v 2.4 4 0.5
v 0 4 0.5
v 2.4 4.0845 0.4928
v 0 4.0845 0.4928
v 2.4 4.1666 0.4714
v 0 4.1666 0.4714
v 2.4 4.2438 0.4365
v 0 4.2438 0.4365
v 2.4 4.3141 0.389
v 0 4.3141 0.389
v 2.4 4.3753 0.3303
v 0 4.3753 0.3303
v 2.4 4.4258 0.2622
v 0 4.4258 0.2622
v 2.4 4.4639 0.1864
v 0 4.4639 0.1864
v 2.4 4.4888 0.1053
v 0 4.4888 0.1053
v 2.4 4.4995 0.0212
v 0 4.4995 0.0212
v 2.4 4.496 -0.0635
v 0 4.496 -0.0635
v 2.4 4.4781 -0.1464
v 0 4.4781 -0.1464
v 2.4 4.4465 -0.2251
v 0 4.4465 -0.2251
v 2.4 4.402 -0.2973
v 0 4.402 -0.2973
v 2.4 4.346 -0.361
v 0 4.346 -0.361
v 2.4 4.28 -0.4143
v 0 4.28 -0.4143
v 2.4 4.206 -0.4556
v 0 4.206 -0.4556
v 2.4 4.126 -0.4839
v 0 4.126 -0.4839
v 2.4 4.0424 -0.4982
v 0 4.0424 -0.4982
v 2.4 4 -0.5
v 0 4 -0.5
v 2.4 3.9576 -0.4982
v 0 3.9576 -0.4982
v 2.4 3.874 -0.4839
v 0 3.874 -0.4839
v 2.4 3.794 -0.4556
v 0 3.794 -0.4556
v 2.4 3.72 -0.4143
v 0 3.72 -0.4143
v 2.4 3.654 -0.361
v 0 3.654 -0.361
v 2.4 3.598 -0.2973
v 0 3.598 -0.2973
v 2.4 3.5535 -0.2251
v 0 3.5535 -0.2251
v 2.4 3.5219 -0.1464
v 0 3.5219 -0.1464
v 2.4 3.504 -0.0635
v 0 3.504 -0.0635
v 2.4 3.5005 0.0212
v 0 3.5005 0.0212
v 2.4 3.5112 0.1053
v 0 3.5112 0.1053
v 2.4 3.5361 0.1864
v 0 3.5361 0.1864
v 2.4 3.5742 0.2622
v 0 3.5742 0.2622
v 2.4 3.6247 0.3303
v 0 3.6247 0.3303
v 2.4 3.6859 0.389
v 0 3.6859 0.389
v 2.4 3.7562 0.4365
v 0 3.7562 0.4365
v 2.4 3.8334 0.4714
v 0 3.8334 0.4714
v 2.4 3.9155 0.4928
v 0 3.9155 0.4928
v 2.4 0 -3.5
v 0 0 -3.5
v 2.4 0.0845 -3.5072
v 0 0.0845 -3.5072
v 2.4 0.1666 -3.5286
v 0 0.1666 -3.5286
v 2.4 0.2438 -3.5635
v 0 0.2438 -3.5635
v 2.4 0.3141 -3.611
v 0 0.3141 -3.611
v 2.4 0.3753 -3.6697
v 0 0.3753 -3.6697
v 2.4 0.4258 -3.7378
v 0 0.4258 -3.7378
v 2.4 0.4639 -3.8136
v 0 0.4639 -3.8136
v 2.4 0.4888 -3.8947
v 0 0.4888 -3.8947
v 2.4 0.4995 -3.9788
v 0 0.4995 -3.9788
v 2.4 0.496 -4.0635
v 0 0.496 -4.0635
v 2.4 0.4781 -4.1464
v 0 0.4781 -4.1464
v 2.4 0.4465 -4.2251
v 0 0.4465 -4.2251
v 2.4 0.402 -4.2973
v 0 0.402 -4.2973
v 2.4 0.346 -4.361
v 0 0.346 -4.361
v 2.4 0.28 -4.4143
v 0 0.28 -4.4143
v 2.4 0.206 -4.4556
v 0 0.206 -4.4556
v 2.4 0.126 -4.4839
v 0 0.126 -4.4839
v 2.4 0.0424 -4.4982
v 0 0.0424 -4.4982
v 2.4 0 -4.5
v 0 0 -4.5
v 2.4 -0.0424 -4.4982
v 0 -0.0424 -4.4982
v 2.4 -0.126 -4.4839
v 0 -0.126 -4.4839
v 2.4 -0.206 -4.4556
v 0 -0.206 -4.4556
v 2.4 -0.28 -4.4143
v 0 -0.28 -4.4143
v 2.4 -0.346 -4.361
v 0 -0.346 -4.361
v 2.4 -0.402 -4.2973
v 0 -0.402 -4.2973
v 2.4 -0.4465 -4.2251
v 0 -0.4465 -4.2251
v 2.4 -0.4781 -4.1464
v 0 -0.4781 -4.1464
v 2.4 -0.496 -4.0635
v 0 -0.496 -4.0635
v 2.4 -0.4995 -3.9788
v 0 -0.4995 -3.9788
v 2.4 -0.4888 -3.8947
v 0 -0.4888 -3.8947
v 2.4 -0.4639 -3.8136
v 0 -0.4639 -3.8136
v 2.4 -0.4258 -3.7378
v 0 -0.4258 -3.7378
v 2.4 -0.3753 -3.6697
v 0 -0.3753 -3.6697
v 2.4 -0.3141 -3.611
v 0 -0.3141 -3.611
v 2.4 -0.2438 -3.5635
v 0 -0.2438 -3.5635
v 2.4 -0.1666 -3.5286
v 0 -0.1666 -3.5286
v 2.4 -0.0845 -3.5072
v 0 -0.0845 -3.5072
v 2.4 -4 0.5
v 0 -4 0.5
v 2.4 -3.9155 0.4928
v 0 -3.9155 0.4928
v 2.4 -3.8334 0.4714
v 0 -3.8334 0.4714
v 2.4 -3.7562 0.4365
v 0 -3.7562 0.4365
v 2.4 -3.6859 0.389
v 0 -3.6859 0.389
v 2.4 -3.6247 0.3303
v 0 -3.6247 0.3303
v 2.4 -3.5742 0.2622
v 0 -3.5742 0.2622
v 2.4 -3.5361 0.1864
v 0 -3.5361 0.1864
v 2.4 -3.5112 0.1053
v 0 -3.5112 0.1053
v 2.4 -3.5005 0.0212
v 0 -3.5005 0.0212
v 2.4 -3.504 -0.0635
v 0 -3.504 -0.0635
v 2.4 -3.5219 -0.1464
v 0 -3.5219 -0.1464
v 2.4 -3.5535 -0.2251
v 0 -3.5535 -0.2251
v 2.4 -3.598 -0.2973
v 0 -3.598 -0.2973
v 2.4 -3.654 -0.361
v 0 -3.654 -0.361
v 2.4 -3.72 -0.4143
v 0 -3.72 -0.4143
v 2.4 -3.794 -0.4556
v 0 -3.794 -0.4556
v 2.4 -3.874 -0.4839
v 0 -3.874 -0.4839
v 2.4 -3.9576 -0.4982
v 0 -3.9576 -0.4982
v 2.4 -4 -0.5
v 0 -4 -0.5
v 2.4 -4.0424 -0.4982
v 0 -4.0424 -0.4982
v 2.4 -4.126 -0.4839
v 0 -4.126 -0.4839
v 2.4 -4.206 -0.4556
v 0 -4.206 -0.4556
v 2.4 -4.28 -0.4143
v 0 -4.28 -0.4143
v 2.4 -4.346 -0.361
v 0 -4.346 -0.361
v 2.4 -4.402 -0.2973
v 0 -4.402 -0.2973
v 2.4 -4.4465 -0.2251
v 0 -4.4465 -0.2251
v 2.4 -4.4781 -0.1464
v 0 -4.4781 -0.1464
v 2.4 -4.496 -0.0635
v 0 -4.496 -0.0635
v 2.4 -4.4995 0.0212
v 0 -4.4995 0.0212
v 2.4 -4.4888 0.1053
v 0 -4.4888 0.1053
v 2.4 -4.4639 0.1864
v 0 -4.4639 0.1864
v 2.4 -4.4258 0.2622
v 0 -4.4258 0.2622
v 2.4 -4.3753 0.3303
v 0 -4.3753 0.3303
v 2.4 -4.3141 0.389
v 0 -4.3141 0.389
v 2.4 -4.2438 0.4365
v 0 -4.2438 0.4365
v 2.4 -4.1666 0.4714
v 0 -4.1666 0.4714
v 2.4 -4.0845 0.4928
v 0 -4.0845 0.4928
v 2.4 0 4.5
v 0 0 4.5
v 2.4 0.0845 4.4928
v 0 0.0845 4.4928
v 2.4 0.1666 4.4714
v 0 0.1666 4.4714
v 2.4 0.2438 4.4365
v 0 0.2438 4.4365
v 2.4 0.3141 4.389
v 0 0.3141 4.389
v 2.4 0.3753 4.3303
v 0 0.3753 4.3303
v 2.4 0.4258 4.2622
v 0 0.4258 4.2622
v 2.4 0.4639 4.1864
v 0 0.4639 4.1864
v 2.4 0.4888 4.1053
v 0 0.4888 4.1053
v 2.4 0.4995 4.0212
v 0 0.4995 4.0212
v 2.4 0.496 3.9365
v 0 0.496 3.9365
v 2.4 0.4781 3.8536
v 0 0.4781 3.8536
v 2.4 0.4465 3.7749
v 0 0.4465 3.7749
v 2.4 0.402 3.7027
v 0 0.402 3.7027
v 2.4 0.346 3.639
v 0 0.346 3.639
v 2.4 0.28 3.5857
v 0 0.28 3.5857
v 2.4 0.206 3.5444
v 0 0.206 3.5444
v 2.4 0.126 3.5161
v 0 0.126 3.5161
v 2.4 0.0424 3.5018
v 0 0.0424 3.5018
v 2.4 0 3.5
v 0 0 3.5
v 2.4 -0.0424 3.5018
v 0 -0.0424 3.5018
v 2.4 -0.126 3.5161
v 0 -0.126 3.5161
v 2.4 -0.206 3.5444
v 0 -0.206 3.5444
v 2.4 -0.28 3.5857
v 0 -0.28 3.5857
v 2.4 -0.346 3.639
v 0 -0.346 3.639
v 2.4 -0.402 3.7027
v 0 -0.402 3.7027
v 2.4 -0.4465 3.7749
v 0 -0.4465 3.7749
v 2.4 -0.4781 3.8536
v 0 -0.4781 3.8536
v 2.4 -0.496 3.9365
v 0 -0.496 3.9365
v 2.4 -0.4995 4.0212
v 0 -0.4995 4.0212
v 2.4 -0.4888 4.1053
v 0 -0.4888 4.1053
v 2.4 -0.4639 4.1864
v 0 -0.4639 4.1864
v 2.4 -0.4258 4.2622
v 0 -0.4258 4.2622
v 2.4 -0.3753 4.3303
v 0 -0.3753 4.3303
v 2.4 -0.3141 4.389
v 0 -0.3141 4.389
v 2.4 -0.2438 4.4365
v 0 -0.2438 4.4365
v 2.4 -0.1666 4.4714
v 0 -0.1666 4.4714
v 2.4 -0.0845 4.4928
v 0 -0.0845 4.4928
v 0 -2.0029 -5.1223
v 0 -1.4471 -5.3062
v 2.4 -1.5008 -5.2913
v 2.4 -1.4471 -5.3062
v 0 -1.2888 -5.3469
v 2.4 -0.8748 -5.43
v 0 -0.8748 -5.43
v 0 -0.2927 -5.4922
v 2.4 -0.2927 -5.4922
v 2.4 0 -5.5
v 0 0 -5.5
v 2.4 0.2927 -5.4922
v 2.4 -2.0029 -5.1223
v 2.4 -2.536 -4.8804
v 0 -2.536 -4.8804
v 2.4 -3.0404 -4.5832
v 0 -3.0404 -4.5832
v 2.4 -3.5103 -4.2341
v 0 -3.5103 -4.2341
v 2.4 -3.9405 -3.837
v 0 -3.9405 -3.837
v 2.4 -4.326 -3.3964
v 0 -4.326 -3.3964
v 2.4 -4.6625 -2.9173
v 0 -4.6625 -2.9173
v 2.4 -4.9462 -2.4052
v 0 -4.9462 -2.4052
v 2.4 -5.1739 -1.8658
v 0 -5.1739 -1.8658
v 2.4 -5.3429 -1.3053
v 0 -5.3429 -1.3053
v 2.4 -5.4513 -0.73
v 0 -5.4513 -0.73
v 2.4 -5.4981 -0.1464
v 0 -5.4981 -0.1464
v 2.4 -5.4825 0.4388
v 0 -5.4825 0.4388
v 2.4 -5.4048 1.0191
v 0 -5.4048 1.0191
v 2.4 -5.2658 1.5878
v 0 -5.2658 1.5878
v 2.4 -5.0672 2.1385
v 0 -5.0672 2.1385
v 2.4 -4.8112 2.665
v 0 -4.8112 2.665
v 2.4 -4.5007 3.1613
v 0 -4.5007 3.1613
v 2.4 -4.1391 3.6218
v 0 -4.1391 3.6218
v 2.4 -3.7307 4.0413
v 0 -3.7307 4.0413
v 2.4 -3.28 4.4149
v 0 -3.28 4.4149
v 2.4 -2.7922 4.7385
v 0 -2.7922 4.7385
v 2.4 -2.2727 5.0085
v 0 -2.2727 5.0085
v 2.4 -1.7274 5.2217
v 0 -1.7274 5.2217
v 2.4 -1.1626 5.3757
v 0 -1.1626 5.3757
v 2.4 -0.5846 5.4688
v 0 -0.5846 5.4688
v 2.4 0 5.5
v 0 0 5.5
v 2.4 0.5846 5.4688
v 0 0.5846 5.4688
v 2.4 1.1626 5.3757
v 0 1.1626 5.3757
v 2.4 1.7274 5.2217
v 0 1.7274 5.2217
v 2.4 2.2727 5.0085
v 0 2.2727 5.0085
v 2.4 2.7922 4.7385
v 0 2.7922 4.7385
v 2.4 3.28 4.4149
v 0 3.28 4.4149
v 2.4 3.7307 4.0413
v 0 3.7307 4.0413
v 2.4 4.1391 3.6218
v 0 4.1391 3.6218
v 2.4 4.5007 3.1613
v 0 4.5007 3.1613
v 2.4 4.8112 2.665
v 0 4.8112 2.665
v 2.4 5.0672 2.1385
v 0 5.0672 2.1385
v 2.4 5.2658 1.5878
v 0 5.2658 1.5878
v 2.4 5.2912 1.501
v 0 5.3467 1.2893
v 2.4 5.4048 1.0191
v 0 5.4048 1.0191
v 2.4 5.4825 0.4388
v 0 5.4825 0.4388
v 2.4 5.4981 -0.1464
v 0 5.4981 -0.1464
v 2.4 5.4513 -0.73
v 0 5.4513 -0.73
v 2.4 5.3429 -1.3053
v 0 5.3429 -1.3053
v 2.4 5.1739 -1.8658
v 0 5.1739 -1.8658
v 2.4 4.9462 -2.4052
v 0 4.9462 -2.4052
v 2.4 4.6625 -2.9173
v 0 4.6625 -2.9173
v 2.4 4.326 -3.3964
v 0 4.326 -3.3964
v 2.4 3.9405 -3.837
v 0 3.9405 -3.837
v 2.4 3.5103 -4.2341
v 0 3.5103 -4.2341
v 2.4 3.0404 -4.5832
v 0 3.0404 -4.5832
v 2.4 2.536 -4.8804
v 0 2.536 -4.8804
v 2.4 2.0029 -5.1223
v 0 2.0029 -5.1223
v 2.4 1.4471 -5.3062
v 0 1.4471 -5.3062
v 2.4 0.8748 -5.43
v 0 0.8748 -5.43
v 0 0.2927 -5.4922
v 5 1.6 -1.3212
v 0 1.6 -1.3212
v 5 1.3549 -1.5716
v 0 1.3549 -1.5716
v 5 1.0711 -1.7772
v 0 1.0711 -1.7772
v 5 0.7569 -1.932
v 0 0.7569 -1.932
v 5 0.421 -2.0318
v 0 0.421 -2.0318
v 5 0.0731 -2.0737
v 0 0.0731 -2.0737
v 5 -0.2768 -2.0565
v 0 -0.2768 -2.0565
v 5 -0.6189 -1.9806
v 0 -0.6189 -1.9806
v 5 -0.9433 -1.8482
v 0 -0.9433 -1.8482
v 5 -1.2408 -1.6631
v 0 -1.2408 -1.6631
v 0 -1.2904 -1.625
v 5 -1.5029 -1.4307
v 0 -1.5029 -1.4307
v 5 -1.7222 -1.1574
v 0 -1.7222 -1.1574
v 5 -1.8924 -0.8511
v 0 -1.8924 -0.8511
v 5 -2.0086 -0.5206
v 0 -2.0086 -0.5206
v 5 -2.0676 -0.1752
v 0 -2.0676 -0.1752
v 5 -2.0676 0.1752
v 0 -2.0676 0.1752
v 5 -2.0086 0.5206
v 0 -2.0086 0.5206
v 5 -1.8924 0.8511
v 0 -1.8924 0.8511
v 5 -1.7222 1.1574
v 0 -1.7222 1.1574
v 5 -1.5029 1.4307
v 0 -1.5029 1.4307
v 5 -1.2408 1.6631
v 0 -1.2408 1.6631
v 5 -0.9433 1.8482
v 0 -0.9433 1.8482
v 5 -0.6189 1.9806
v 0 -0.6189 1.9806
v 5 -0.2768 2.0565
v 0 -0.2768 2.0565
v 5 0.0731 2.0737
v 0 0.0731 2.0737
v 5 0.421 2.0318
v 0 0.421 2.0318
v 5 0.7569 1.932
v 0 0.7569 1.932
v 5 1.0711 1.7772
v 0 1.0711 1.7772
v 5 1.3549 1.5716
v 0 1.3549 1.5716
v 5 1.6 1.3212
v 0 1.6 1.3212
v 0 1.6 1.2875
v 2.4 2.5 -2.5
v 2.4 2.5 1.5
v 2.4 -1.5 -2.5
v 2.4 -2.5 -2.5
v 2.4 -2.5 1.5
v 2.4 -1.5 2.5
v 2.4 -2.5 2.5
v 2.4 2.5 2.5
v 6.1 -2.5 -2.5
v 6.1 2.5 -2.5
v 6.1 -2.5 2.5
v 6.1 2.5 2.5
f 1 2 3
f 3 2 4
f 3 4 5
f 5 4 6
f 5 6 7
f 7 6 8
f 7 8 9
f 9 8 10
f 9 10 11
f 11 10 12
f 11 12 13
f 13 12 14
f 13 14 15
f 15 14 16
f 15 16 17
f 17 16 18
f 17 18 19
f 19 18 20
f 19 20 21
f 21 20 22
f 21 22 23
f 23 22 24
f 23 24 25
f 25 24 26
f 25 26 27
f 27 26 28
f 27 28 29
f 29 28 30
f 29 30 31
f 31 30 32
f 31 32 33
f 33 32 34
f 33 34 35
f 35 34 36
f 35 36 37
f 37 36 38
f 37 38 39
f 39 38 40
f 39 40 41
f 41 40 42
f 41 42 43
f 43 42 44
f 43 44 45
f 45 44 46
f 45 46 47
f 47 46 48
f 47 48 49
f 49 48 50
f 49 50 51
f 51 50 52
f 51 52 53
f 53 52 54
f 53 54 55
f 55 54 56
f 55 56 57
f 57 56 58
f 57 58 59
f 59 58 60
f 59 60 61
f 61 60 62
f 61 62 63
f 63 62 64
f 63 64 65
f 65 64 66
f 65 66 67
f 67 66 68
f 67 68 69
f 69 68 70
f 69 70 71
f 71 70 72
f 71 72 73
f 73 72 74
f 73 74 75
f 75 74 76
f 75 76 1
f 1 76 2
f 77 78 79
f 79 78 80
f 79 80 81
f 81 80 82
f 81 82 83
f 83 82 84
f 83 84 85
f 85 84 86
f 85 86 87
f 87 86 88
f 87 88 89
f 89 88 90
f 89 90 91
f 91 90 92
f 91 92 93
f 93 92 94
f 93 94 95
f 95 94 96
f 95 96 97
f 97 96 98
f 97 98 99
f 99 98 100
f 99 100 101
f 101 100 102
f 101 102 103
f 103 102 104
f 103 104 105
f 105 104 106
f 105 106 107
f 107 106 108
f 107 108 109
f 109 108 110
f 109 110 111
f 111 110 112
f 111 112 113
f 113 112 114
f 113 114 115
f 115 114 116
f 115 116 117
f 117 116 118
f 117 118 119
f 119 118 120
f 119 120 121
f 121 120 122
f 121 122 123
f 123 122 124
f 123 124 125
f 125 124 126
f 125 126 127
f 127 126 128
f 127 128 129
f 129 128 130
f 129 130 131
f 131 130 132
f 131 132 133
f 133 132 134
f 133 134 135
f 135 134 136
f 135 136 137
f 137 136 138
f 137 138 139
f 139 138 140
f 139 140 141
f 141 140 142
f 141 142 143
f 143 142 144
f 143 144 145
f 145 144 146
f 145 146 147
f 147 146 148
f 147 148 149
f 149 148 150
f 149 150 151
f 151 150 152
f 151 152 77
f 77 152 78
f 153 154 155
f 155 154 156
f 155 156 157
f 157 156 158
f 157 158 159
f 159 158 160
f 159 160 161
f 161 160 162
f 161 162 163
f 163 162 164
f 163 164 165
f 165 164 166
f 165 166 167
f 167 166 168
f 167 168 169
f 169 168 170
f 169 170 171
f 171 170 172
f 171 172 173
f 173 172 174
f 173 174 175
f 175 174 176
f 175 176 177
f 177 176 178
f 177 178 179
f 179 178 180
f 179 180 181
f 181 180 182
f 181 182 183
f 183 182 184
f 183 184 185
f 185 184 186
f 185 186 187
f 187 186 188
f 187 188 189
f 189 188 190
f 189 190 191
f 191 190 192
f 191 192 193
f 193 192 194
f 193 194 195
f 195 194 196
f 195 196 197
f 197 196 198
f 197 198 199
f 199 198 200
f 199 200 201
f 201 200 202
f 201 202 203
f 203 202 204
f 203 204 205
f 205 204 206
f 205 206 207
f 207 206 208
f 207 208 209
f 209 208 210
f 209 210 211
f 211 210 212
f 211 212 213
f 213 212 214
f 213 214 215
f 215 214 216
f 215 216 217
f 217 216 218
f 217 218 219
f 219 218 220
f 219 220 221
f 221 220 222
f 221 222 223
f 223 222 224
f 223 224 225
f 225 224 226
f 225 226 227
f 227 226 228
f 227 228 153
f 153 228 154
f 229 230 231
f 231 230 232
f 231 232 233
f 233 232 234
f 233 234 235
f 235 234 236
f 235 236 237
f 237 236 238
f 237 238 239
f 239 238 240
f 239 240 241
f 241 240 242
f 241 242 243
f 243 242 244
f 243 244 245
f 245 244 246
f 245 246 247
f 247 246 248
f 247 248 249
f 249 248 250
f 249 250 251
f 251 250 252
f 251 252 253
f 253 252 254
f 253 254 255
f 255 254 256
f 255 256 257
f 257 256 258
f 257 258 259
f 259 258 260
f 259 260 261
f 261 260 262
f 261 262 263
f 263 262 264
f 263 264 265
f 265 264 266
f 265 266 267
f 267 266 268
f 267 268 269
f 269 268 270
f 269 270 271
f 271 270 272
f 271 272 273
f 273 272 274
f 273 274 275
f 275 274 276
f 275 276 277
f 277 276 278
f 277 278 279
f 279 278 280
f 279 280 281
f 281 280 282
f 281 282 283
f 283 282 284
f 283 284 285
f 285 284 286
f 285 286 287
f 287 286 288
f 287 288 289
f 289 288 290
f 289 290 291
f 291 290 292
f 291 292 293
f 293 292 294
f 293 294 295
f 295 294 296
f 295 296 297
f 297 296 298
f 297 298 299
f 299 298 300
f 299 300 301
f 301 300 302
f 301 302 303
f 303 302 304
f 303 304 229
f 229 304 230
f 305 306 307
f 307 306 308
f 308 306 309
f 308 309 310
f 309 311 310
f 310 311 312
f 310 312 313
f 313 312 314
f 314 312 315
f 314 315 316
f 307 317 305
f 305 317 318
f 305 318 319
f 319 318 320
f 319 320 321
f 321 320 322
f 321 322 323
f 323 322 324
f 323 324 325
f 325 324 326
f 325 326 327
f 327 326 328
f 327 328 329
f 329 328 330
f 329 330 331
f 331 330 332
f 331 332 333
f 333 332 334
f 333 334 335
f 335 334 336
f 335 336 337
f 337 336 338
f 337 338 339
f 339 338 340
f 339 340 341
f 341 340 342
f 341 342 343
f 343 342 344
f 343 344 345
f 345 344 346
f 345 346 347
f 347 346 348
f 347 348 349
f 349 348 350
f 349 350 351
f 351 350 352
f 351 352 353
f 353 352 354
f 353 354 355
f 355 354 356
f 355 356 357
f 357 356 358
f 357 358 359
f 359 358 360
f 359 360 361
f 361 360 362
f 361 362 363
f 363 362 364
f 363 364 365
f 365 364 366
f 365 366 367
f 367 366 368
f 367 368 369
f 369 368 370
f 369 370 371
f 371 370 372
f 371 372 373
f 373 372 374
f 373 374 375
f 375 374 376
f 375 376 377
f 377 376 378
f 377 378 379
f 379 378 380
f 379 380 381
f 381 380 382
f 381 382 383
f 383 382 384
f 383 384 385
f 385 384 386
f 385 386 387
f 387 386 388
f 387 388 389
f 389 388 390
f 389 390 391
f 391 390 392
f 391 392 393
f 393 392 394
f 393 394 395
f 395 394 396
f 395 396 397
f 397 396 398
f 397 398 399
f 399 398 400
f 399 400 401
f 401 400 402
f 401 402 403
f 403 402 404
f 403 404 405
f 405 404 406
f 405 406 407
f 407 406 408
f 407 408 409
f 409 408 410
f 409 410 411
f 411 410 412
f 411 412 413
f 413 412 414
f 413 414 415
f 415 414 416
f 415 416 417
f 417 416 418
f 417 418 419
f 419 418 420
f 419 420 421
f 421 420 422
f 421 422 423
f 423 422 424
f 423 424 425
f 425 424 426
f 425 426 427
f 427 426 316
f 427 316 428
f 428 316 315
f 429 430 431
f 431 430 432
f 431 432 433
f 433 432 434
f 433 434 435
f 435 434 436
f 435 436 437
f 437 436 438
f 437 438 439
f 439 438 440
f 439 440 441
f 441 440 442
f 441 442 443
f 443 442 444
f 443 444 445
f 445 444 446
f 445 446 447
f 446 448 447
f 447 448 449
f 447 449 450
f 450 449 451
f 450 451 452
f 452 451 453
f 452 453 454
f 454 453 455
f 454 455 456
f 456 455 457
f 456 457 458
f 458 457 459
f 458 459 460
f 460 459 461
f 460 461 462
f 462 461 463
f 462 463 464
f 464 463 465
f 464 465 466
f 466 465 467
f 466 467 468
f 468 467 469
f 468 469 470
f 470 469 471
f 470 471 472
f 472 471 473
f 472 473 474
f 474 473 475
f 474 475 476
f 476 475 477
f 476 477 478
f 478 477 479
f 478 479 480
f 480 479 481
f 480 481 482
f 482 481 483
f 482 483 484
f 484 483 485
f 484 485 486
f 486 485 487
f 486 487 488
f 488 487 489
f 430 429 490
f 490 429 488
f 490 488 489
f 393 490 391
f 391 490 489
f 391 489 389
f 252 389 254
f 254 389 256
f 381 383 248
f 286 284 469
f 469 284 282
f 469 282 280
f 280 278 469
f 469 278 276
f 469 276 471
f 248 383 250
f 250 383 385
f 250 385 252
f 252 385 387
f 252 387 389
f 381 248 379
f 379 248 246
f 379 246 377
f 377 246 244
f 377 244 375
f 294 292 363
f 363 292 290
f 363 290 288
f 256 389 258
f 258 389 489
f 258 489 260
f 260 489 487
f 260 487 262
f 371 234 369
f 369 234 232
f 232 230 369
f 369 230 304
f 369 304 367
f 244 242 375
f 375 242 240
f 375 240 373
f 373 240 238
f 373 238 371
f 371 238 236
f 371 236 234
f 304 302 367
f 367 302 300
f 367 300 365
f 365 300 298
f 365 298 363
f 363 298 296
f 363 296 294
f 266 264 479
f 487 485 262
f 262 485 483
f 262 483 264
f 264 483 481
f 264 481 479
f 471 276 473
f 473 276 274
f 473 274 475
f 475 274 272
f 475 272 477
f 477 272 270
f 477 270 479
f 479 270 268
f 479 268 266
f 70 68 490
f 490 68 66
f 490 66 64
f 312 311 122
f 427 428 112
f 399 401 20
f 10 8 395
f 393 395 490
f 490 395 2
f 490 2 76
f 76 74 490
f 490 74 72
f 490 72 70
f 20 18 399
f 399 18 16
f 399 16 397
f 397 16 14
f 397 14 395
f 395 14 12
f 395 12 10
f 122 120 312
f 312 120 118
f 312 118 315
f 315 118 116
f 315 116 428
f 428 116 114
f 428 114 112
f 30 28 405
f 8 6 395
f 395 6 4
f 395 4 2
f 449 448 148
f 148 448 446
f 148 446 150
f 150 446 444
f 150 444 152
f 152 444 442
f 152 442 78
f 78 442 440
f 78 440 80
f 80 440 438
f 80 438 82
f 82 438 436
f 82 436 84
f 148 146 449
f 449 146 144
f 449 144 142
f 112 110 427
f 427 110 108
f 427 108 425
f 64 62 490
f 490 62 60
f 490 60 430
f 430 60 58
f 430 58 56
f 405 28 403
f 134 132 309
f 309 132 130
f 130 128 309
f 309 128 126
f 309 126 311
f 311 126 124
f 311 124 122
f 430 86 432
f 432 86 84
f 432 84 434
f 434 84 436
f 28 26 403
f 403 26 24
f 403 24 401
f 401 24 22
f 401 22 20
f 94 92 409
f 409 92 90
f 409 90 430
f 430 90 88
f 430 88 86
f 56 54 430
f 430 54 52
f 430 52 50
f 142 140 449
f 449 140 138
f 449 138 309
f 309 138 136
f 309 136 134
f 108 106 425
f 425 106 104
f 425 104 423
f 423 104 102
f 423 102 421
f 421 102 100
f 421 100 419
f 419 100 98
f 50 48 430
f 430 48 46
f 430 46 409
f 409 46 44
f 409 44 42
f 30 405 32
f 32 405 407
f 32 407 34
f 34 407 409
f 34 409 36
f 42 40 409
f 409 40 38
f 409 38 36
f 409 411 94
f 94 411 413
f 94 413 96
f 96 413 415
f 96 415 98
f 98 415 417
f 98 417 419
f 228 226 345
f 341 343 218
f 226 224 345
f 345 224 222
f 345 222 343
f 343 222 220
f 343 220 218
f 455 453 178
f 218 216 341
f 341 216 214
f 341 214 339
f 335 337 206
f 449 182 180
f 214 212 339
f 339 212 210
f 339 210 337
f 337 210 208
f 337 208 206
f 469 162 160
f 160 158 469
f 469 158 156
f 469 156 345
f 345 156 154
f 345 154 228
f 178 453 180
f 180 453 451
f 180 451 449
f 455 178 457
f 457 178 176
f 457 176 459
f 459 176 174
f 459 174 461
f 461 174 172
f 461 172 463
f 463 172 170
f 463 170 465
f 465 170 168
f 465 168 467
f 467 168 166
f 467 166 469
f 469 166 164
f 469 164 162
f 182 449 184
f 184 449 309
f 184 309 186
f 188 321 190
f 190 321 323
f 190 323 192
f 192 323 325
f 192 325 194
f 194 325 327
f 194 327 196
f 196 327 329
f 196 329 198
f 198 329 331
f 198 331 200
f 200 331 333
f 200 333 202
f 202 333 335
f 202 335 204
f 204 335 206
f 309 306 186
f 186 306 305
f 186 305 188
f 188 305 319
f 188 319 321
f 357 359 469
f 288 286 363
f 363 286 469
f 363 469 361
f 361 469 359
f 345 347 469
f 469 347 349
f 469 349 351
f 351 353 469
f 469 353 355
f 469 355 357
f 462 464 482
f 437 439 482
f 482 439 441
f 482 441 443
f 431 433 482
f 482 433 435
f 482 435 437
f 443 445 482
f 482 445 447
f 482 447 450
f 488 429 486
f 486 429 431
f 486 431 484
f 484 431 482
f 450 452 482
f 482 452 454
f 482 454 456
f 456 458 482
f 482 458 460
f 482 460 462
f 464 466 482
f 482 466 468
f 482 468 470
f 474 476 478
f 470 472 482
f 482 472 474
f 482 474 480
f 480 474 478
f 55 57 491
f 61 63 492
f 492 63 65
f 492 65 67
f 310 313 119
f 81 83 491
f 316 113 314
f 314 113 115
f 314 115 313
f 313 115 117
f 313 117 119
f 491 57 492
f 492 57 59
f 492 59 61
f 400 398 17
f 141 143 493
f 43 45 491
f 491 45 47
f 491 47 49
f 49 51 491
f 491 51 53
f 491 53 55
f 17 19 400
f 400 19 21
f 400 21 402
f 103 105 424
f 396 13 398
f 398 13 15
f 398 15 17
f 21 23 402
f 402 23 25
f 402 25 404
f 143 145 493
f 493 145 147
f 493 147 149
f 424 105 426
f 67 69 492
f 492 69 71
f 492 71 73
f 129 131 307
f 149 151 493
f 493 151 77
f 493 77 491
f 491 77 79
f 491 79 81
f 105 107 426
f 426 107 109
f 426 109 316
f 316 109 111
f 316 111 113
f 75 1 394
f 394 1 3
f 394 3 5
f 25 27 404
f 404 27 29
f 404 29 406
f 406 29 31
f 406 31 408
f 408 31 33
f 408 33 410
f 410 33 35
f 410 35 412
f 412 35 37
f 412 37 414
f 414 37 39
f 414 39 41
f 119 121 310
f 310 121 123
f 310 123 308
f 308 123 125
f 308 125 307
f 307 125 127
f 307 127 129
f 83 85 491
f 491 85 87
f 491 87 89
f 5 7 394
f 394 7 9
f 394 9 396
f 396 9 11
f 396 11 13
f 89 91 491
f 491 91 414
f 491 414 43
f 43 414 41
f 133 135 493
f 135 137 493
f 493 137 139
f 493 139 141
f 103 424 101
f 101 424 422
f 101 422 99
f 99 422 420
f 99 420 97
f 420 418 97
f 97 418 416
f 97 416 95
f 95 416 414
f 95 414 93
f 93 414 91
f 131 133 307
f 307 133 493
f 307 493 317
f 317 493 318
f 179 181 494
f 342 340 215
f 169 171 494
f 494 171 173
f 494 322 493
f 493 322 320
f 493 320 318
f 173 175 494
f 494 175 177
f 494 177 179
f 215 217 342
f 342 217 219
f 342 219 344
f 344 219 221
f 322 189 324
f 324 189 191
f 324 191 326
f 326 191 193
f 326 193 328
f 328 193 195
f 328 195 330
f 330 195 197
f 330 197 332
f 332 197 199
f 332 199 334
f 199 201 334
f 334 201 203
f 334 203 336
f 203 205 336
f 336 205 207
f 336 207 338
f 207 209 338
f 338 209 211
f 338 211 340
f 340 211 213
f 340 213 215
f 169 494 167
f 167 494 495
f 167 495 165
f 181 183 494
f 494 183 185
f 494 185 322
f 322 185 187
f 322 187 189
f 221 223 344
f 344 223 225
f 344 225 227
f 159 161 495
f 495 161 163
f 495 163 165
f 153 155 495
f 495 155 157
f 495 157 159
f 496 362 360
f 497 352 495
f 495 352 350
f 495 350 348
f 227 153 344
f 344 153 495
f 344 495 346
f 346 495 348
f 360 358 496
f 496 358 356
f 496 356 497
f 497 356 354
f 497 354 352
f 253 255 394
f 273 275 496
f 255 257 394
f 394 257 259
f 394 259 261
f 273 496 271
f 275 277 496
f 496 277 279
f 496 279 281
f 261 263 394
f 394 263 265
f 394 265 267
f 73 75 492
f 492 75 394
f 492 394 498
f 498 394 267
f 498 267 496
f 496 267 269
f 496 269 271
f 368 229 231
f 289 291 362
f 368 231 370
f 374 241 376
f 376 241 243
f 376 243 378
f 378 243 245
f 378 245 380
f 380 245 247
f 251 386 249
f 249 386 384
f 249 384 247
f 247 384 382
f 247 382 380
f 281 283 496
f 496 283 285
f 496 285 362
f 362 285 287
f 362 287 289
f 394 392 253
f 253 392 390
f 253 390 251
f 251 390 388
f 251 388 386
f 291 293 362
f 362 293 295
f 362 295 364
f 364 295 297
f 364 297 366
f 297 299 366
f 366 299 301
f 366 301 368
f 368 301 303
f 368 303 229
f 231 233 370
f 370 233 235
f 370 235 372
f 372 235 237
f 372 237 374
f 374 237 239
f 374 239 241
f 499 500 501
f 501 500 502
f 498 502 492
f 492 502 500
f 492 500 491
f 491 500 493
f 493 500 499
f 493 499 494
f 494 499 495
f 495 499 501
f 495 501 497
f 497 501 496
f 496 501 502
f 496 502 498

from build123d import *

# Parameters (mm, degrees)
SKETCH1_R           = 5.5
SKETCH1_R_2         = 0.5
BOSS_EXTRUDE1_DEPTH = 6
SKETCH2_R           = 5.5
BOSS_EXTRUDE2_DEPTH = 1
SKETCH3_R           = 0.5
CUT_EXTRUDE1_DEPTH  = 7
SKETCH4_W           = 5
SKETCH4_H           = 5
BOSS_EXTRUDE3_DEPTH = 0.1
SKETCH5_OUTSIDE_W   = 16.342
SKETCH5_OUTSIDE_H   = 16.342
SKETCH5_OUTSIDE_W_2 = 5
SKETCH5_OUTSIDE_H_2 = 5
CUT_EXTRUDE2_DEPTH  = 3.6


with BuildPart() as part:
    # Sketch1 → Boss-Extrude1 (new body)
    with BuildSketch(Plane(origin=(0, 0, 0), x_dir=(0, 0, -1), z_dir=(1, 0, 0))):
        Circle(SKETCH1_R)
        with Locations((0, 4)):
            Circle(SKETCH1_R_2, mode=Mode.SUBTRACT)
        with Locations((4, 0)):
            Circle(SKETCH1_R_2, mode=Mode.SUBTRACT)
        with Locations((0, -4)):
            Circle(SKETCH1_R_2, mode=Mode.SUBTRACT)
        with Locations((-4, 0)):
            Circle(SKETCH1_R_2, mode=Mode.SUBTRACT)
        with BuildLine():
            Line((-1.321221026, 1.6), (1.321221026, 1.6))
            ThreePointArc((1.321221026, 1.6), (0, -2.075), (-1.321221026, 1.6))
        make_face(mode=Mode.SUBTRACT)
    extrude(amount=BOSS_EXTRUDE1_DEPTH)

    # Sketch2 → Boss-Extrude2 (add)
    with BuildSketch(Plane(origin=(6, 0, 0), x_dir=(0, 0, -1), z_dir=(1, 0, 0))):
        Circle(SKETCH2_R)
    extrude(amount=-BOSS_EXTRUDE2_DEPTH)

    # Sketch3 → Cut-Extrude1 (cut, through all)
    with BuildSketch(Plane.ZY):
        with Locations((0, 4)):
            Circle(SKETCH3_R)
        with Locations((4, 0)):
            Circle(SKETCH3_R)
        with Locations((0, -4)):
            Circle(SKETCH3_R)
        with Locations((-4, 0)):
            Circle(SKETCH3_R)
    extrude(amount=-CUT_EXTRUDE1_DEPTH, mode=Mode.SUBTRACT)

    # Sketch4 → Boss-Extrude3 (add)
    with BuildSketch(Plane(origin=(6, 0, 0), x_dir=(0, 0, -1), z_dir=(1, 0, 0))):
        Rectangle(SKETCH4_W, SKETCH4_H)
    extrude(amount=BOSS_EXTRUDE3_DEPTH)

    # Sketch5 outside → Cut-Extrude2 (cut)
    with BuildSketch(Plane(origin=(6, 0, 0), x_dir=(0, 0, -1), z_dir=(1, 0, 0))):
        Rectangle(SKETCH5_OUTSIDE_W, SKETCH5_OUTSIDE_H)
        Rectangle(SKETCH5_OUTSIDE_W_2, SKETCH5_OUTSIDE_H_2, mode=Mode.SUBTRACT)
    extrude(amount=-CUT_EXTRUDE2_DEPTH, mode=Mode.SUBTRACT)


solid = part.part
